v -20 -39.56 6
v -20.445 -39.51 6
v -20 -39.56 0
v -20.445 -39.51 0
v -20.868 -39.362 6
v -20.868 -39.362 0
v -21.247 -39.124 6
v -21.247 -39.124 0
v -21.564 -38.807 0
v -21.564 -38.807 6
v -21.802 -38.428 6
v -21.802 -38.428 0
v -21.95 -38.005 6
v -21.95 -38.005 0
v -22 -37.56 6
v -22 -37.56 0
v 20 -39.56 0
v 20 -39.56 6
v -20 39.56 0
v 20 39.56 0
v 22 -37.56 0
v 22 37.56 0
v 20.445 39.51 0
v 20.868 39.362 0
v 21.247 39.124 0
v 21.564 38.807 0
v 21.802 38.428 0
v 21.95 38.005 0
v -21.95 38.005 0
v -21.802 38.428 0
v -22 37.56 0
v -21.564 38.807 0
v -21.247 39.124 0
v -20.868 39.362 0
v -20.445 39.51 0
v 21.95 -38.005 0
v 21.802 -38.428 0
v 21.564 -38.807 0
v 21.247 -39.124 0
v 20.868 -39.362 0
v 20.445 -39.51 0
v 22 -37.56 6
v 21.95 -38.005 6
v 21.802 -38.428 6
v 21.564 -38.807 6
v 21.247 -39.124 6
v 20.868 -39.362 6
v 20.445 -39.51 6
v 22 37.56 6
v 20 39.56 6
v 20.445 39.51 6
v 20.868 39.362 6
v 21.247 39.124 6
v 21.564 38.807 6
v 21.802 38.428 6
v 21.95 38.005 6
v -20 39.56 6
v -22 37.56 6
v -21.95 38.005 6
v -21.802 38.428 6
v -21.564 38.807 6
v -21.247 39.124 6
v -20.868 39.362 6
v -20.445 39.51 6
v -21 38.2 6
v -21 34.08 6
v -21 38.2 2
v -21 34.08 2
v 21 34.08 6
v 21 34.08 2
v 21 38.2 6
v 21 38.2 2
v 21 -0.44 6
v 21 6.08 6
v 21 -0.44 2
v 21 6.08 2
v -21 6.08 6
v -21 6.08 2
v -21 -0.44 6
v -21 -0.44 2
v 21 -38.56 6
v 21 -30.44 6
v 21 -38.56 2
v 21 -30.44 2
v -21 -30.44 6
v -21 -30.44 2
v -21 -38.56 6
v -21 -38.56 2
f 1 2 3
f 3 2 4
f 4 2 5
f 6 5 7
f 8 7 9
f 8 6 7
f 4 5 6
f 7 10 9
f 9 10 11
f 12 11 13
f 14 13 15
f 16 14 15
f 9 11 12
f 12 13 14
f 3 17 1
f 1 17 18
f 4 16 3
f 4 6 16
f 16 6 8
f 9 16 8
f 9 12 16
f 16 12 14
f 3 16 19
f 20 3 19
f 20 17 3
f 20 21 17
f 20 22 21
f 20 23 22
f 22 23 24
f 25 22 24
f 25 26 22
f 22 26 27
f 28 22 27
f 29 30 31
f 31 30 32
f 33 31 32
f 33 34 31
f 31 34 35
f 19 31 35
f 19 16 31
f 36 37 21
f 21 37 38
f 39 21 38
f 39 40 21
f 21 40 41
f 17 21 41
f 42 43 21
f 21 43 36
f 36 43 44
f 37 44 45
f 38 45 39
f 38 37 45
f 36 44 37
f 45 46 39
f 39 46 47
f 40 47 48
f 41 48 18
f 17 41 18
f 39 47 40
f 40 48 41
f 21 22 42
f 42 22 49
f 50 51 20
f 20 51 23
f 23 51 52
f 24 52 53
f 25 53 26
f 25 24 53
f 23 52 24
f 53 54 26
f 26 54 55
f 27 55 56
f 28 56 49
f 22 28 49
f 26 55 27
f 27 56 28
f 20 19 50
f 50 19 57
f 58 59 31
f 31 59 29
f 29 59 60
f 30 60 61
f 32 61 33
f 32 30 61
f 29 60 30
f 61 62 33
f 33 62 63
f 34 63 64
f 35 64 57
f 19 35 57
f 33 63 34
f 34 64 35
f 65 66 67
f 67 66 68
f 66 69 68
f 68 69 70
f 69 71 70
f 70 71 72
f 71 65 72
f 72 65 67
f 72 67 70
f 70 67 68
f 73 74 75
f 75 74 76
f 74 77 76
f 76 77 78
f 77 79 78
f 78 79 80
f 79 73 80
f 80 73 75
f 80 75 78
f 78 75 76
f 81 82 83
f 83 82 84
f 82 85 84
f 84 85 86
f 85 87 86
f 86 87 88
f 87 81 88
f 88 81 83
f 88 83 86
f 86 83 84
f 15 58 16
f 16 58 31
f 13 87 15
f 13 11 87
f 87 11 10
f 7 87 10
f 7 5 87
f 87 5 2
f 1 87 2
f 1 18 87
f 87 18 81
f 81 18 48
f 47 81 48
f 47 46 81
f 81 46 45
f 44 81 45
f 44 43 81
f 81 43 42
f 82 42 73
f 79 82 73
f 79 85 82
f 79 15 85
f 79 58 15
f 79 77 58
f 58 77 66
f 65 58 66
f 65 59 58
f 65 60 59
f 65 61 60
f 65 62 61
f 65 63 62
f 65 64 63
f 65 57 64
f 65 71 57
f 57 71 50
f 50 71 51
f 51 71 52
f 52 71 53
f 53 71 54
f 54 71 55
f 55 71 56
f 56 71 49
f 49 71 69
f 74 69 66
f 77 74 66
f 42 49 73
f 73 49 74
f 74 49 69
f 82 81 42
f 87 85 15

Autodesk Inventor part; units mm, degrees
ref_plane "YZ Plane" through (0, 0, 0) normal (1, 0, 0) x (0, 1, 0)
ref_plane "XZ Plane" through (0, 0, 0) normal (0, 1, 0) x (-1, 0, 0)
ref_plane "XY Plane" through (0, 0, 0) normal (0, 0, 1) x (1, 0, 0)
sketch "Base" plane through (0, 0, 0) normal (0, 0, 1) x (1, 0, 0)
  line L0 (-22, -39.56) -> (22, -39.56)
  line L1 (22, -39.56) -> (22, 39.56)
  line L2 (22, 39.56) -> (-22, 39.56)
  line L3 (-22, 39.56) -> (-22, -39.56)
  line L4 (-22, -39.56) -> (22, 39.56) construction
  line L5 (22, -39.56) -> (-22, 39.56) construction
  point P0 (0, 0)
  dimension "d56" = 44
  dimension "d57" = 79.12
extrude "Extrusion4" add sketch "Base" along normal blind 6
sketch "Slot1" plane through (0, 0, 6) normal (0, 0, 1) x (1, 0, 0)
  line L0 (21, -38.56) -> (-21, -38.56)
  line L1 (-21, -38.56) -> (-21, -30.44)
  line L2 (-21, -30.44) -> (21, -30.44)
  line L3 (21, -30.44) -> (21, -38.56)
  line L4 (21, -38.56) -> (-21, -30.44) construction
  line L5 (-21, -38.56) -> (21, -30.44) construction
  line L6 (22, -39.56) -> (22, 39.56) projected
  line L7 (-22, -39.56) -> (22, -39.56) projected
  point P0 (0, 0)
  point P1 (0, -34.5)
  dimension "d62" = 8.12
  dimension "d63" = 1
  dimension "d64" = 42
  dimension "d66" = 1
extrude "Slot1 slot" cut sketch "Slot1" against normal blind 4
sketch "Slot2" plane through (0, 0, 6) normal (0, 0, 1) x (1, 0, 0)
  line L0 (21, -0.44) -> (-21, -0.44)
  line L1 (-21, -0.44) -> (-21, 6.08)
  line L2 (-21, 6.08) -> (21, 6.08)
  line L3 (21, 6.08) -> (21, -0.44)
  line L4 (21, -0.44) -> (-21, 6.08) construction
  line L5 (-21, -0.44) -> (21, 6.08) construction
  line L6 (-22, 39.56) -> (-22, -39.56) projected
  line L7 (-21, -30.44) -> (21, -30.44) projected
  point P0 (0, 0)
  point P1 (0, 2.82)
  dimension "d75" = 6.52
  dimension "d76" = 42
  dimension "d77" = 1
  dimension "d80" = 30
extrude "Slot2 slot" cut sketch "Slot2" against normal blind 4
sketch "Slot3" plane through (0, 0, 6) normal (0, 0, 1) x (1, 0, 0)
  line L0 (-21, 38.2) -> (21, 38.2)
  line L1 (21, 38.2) -> (21, 34.08)
  line L2 (21, 34.08) -> (-21, 34.08)
  line L3 (-21, 34.08) -> (-21, 38.2)
  line L4 (-21, 38.2) -> (21, 34.08) construction
  line L5 (21, 38.2) -> (-21, 34.08) construction
  point P0 (0, 36.14)
  dimension "d83" = 4.12
  dimension "d84" = 42
extrude "Extrusion7" cut sketch "Slot3" against normal blind 4
fillet "Fillet1" radius 2 1 edges at (-22, 39.56, 3)
fillet "Fillet2" radius 2 1 edges at (22, 39.56, 3)
fillet "Fillet3" radius 2 1 edges at (22, -39.56, 3)
fillet "Fillet4" radius 2 1 edges at (-22, -39.56, 3)
sketch "Sketch14" plane through (0, 0, 6) normal (0, 0, 1) x (1, 0, 0)
  point P0 (0, 0)
equation "\"d56\" = basew"
equation "\"d57\" = baseh"
equation "\"d62\" = wall1slot"
equation "\"d63\" = -0.5 * wallw + 0.5 * basew"
equation "\"d64\" = wallw"
equation "\"d66\" = 0.5 * baseextra"
equation "\"d75\" = wall2slot"
equation "\"d76\" = wallw"
equation "\"d77\" = 0.5 * baseextra"
equation "\"d80\" = gap1"
equation "\"d83\" = wall3slot"
equation "\"d84\" = wallw"
equation "\"printer3dtolerance\" = 0.12"
equation "\"wallw\" = 42"
equation "\"wallh\" = 44"
equation "\"cornerrad\" = 2"
equation "\"baseextra\" = 2"
equation "\"wall1_thick\" = 8"
equation "\"wall2_thick\" = 6.4"
equation "\"wall3_thick\" = 4"
equation "\"wall1slot\" = 8.12"
equation "\"wall2slot\" = 6.52"
equation "\"wall3slot\" = 4.12"
equation "\"gap1\" = 30"
equation "\"gap2\" = 28"
equation "\"baseh\" = 79.12"
equation "\"basew\" = 44"
equation "\"base_thick\" = 6"
equation "\"base_slots_depth\" = 4"
equation "\"d26\" = 8.12"
equation "\"d27\" = 42"
equation "\"d28\" = 44"
equation "\"d29\" = 28"
equation "\"d31\" = 4.12"
equation "\"d32\" = 6.52"
equation "\"d33\" = 79.12"
equation "\"d39\" = 8.12"
equation "\"d40\" = 42"
equation "\"d41\" = 44"
equation "\"d48\" = 8.12"
equation "\"d49\" = 42"
equation "\"d50\" = 8.12"
equation "\"d51\" = 42"
equation "\"d52\" = 44"
equation "\"d53\" = 44"
equation "\"d71\" = 8.12"
equation "\"d72\" = 42"
equation "\"d73\" = 2"
equation "\"d74\" = 44"
equation "\"distancefrombottom\" = 34"
equation "\"servosmallcircledia\" = 5.92"
equation "\"servo9gw\" = 22.8"
equation "\"servomountsquare\" = 6"
equation "\"servopolygonl\" = 5.92"
equation "\"servopolygonr\" = 6.12"
equation "\"distancefromleft\" = 26"
equation "\"servobigcircledia\" = 11.62"
equation "\"servomounth\" = 4"
equation "\"wall3slotd\" = 2"
equation "\"wall3slotw\" = 36"
equation "\"adapterh\" = 16"
equation "\"adapterw\" = 32"
equation "\"wall3slotd_1\" = 2"
properties part number "base-frame" material "Wood (Oak)"
